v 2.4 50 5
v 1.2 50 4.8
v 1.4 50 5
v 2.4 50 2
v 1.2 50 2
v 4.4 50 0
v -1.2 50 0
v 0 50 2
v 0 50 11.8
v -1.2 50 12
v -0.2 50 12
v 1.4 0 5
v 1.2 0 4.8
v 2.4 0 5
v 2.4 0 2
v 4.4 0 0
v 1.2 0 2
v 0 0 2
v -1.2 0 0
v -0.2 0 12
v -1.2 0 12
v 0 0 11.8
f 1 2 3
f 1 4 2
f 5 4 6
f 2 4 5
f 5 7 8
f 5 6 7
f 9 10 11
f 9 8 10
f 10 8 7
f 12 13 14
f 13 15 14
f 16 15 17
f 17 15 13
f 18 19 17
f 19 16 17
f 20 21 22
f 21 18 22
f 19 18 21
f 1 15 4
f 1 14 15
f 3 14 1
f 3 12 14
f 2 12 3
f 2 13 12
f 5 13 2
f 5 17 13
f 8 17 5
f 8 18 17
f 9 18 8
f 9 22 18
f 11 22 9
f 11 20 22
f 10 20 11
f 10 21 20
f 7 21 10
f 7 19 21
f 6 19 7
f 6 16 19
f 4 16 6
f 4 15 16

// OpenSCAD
// Glass door bottom wedge / edge rail. All dimensions in millimetres.
// X = across glass, Y = along the door, Z = vertical from floor.
// Issue #17: 0.8 mm is the stated glass thickness, not a confirmed measurement.
// For 8 mm glass: openscad -D 'glass_thickness=8' -o wedge_8mm.stl glass_door_wedge.scad

glass_thickness = 0.8; // measured glass thickness, CHECK 0.8 vs 8 mm before use
fit_clearance = 0.2;   // allowance PER SIDE of glass
wedge_depth = 2;       // horizontal outward projection of tapered bottom wedge
base_thickness = 2;    // vertical clearance taken beneath the seated glass
rail_height = 10;      // tall rail above the glass seating surface
return_lip_height = 3; // low lip on opposite side for retention
wall_thickness = 1.2;  // three 0.4 mm nozzle widths, subject to slicer verification
segment_length = 50;   // short test part; set to actual door length after test fit
entry_chamfer = 0.2;   // small lead-in at each inner rail edge

// The door rests on Z=base_thickness between X=0 and X=channel_width.
channel_width = glass_thickness + 2 * fit_clearance;
outer_front = channel_width + wall_thickness;

assert(glass_thickness > 0, "glass_thickness must be positive")
assert(fit_clearance >= 0, "fit_clearance must be non-negative")
assert(wedge_depth > 0 && base_thickness > 0, "wedge/base dimensions must be positive")
assert(wall_thickness > entry_chamfer && wall_thickness >= 0.8,
       "walls must accommodate chamfer and at least two 0.4mm extrusion widths")
assert(rail_height > entry_chamfer && return_lip_height > entry_chamfer,
       "rail and lip must be taller than chamfer")
assert(segment_length > 0 && entry_chamfer >= 0,
       "segment length must be positive; chamfer cannot be negative")
translate([0, segment_length, 0])
rotate([90, 0, 0]) // Extruded door length lies on the bed (Y), not vertically (Z).
linear_extrude(height = segment_length, convexity = 10)
polygon(points = [
    [-wall_thickness, 0],
    [outer_front + wedge_depth, 0],          // outermost tapered toe, 2 mm projection
    [outer_front, base_thickness],
    [outer_front, base_thickness + return_lip_height],
    [channel_width + entry_chamfer, base_thickness + return_lip_height],
    [channel_width, base_thickness + return_lip_height - entry_chamfer],
    [channel_width, base_thickness],
    [0, base_thickness],
    [0, base_thickness + rail_height - entry_chamfer],
    [-entry_chamfer, base_thickness + rail_height],
    [-wall_thickness, base_thickness + rail_height]
]);
